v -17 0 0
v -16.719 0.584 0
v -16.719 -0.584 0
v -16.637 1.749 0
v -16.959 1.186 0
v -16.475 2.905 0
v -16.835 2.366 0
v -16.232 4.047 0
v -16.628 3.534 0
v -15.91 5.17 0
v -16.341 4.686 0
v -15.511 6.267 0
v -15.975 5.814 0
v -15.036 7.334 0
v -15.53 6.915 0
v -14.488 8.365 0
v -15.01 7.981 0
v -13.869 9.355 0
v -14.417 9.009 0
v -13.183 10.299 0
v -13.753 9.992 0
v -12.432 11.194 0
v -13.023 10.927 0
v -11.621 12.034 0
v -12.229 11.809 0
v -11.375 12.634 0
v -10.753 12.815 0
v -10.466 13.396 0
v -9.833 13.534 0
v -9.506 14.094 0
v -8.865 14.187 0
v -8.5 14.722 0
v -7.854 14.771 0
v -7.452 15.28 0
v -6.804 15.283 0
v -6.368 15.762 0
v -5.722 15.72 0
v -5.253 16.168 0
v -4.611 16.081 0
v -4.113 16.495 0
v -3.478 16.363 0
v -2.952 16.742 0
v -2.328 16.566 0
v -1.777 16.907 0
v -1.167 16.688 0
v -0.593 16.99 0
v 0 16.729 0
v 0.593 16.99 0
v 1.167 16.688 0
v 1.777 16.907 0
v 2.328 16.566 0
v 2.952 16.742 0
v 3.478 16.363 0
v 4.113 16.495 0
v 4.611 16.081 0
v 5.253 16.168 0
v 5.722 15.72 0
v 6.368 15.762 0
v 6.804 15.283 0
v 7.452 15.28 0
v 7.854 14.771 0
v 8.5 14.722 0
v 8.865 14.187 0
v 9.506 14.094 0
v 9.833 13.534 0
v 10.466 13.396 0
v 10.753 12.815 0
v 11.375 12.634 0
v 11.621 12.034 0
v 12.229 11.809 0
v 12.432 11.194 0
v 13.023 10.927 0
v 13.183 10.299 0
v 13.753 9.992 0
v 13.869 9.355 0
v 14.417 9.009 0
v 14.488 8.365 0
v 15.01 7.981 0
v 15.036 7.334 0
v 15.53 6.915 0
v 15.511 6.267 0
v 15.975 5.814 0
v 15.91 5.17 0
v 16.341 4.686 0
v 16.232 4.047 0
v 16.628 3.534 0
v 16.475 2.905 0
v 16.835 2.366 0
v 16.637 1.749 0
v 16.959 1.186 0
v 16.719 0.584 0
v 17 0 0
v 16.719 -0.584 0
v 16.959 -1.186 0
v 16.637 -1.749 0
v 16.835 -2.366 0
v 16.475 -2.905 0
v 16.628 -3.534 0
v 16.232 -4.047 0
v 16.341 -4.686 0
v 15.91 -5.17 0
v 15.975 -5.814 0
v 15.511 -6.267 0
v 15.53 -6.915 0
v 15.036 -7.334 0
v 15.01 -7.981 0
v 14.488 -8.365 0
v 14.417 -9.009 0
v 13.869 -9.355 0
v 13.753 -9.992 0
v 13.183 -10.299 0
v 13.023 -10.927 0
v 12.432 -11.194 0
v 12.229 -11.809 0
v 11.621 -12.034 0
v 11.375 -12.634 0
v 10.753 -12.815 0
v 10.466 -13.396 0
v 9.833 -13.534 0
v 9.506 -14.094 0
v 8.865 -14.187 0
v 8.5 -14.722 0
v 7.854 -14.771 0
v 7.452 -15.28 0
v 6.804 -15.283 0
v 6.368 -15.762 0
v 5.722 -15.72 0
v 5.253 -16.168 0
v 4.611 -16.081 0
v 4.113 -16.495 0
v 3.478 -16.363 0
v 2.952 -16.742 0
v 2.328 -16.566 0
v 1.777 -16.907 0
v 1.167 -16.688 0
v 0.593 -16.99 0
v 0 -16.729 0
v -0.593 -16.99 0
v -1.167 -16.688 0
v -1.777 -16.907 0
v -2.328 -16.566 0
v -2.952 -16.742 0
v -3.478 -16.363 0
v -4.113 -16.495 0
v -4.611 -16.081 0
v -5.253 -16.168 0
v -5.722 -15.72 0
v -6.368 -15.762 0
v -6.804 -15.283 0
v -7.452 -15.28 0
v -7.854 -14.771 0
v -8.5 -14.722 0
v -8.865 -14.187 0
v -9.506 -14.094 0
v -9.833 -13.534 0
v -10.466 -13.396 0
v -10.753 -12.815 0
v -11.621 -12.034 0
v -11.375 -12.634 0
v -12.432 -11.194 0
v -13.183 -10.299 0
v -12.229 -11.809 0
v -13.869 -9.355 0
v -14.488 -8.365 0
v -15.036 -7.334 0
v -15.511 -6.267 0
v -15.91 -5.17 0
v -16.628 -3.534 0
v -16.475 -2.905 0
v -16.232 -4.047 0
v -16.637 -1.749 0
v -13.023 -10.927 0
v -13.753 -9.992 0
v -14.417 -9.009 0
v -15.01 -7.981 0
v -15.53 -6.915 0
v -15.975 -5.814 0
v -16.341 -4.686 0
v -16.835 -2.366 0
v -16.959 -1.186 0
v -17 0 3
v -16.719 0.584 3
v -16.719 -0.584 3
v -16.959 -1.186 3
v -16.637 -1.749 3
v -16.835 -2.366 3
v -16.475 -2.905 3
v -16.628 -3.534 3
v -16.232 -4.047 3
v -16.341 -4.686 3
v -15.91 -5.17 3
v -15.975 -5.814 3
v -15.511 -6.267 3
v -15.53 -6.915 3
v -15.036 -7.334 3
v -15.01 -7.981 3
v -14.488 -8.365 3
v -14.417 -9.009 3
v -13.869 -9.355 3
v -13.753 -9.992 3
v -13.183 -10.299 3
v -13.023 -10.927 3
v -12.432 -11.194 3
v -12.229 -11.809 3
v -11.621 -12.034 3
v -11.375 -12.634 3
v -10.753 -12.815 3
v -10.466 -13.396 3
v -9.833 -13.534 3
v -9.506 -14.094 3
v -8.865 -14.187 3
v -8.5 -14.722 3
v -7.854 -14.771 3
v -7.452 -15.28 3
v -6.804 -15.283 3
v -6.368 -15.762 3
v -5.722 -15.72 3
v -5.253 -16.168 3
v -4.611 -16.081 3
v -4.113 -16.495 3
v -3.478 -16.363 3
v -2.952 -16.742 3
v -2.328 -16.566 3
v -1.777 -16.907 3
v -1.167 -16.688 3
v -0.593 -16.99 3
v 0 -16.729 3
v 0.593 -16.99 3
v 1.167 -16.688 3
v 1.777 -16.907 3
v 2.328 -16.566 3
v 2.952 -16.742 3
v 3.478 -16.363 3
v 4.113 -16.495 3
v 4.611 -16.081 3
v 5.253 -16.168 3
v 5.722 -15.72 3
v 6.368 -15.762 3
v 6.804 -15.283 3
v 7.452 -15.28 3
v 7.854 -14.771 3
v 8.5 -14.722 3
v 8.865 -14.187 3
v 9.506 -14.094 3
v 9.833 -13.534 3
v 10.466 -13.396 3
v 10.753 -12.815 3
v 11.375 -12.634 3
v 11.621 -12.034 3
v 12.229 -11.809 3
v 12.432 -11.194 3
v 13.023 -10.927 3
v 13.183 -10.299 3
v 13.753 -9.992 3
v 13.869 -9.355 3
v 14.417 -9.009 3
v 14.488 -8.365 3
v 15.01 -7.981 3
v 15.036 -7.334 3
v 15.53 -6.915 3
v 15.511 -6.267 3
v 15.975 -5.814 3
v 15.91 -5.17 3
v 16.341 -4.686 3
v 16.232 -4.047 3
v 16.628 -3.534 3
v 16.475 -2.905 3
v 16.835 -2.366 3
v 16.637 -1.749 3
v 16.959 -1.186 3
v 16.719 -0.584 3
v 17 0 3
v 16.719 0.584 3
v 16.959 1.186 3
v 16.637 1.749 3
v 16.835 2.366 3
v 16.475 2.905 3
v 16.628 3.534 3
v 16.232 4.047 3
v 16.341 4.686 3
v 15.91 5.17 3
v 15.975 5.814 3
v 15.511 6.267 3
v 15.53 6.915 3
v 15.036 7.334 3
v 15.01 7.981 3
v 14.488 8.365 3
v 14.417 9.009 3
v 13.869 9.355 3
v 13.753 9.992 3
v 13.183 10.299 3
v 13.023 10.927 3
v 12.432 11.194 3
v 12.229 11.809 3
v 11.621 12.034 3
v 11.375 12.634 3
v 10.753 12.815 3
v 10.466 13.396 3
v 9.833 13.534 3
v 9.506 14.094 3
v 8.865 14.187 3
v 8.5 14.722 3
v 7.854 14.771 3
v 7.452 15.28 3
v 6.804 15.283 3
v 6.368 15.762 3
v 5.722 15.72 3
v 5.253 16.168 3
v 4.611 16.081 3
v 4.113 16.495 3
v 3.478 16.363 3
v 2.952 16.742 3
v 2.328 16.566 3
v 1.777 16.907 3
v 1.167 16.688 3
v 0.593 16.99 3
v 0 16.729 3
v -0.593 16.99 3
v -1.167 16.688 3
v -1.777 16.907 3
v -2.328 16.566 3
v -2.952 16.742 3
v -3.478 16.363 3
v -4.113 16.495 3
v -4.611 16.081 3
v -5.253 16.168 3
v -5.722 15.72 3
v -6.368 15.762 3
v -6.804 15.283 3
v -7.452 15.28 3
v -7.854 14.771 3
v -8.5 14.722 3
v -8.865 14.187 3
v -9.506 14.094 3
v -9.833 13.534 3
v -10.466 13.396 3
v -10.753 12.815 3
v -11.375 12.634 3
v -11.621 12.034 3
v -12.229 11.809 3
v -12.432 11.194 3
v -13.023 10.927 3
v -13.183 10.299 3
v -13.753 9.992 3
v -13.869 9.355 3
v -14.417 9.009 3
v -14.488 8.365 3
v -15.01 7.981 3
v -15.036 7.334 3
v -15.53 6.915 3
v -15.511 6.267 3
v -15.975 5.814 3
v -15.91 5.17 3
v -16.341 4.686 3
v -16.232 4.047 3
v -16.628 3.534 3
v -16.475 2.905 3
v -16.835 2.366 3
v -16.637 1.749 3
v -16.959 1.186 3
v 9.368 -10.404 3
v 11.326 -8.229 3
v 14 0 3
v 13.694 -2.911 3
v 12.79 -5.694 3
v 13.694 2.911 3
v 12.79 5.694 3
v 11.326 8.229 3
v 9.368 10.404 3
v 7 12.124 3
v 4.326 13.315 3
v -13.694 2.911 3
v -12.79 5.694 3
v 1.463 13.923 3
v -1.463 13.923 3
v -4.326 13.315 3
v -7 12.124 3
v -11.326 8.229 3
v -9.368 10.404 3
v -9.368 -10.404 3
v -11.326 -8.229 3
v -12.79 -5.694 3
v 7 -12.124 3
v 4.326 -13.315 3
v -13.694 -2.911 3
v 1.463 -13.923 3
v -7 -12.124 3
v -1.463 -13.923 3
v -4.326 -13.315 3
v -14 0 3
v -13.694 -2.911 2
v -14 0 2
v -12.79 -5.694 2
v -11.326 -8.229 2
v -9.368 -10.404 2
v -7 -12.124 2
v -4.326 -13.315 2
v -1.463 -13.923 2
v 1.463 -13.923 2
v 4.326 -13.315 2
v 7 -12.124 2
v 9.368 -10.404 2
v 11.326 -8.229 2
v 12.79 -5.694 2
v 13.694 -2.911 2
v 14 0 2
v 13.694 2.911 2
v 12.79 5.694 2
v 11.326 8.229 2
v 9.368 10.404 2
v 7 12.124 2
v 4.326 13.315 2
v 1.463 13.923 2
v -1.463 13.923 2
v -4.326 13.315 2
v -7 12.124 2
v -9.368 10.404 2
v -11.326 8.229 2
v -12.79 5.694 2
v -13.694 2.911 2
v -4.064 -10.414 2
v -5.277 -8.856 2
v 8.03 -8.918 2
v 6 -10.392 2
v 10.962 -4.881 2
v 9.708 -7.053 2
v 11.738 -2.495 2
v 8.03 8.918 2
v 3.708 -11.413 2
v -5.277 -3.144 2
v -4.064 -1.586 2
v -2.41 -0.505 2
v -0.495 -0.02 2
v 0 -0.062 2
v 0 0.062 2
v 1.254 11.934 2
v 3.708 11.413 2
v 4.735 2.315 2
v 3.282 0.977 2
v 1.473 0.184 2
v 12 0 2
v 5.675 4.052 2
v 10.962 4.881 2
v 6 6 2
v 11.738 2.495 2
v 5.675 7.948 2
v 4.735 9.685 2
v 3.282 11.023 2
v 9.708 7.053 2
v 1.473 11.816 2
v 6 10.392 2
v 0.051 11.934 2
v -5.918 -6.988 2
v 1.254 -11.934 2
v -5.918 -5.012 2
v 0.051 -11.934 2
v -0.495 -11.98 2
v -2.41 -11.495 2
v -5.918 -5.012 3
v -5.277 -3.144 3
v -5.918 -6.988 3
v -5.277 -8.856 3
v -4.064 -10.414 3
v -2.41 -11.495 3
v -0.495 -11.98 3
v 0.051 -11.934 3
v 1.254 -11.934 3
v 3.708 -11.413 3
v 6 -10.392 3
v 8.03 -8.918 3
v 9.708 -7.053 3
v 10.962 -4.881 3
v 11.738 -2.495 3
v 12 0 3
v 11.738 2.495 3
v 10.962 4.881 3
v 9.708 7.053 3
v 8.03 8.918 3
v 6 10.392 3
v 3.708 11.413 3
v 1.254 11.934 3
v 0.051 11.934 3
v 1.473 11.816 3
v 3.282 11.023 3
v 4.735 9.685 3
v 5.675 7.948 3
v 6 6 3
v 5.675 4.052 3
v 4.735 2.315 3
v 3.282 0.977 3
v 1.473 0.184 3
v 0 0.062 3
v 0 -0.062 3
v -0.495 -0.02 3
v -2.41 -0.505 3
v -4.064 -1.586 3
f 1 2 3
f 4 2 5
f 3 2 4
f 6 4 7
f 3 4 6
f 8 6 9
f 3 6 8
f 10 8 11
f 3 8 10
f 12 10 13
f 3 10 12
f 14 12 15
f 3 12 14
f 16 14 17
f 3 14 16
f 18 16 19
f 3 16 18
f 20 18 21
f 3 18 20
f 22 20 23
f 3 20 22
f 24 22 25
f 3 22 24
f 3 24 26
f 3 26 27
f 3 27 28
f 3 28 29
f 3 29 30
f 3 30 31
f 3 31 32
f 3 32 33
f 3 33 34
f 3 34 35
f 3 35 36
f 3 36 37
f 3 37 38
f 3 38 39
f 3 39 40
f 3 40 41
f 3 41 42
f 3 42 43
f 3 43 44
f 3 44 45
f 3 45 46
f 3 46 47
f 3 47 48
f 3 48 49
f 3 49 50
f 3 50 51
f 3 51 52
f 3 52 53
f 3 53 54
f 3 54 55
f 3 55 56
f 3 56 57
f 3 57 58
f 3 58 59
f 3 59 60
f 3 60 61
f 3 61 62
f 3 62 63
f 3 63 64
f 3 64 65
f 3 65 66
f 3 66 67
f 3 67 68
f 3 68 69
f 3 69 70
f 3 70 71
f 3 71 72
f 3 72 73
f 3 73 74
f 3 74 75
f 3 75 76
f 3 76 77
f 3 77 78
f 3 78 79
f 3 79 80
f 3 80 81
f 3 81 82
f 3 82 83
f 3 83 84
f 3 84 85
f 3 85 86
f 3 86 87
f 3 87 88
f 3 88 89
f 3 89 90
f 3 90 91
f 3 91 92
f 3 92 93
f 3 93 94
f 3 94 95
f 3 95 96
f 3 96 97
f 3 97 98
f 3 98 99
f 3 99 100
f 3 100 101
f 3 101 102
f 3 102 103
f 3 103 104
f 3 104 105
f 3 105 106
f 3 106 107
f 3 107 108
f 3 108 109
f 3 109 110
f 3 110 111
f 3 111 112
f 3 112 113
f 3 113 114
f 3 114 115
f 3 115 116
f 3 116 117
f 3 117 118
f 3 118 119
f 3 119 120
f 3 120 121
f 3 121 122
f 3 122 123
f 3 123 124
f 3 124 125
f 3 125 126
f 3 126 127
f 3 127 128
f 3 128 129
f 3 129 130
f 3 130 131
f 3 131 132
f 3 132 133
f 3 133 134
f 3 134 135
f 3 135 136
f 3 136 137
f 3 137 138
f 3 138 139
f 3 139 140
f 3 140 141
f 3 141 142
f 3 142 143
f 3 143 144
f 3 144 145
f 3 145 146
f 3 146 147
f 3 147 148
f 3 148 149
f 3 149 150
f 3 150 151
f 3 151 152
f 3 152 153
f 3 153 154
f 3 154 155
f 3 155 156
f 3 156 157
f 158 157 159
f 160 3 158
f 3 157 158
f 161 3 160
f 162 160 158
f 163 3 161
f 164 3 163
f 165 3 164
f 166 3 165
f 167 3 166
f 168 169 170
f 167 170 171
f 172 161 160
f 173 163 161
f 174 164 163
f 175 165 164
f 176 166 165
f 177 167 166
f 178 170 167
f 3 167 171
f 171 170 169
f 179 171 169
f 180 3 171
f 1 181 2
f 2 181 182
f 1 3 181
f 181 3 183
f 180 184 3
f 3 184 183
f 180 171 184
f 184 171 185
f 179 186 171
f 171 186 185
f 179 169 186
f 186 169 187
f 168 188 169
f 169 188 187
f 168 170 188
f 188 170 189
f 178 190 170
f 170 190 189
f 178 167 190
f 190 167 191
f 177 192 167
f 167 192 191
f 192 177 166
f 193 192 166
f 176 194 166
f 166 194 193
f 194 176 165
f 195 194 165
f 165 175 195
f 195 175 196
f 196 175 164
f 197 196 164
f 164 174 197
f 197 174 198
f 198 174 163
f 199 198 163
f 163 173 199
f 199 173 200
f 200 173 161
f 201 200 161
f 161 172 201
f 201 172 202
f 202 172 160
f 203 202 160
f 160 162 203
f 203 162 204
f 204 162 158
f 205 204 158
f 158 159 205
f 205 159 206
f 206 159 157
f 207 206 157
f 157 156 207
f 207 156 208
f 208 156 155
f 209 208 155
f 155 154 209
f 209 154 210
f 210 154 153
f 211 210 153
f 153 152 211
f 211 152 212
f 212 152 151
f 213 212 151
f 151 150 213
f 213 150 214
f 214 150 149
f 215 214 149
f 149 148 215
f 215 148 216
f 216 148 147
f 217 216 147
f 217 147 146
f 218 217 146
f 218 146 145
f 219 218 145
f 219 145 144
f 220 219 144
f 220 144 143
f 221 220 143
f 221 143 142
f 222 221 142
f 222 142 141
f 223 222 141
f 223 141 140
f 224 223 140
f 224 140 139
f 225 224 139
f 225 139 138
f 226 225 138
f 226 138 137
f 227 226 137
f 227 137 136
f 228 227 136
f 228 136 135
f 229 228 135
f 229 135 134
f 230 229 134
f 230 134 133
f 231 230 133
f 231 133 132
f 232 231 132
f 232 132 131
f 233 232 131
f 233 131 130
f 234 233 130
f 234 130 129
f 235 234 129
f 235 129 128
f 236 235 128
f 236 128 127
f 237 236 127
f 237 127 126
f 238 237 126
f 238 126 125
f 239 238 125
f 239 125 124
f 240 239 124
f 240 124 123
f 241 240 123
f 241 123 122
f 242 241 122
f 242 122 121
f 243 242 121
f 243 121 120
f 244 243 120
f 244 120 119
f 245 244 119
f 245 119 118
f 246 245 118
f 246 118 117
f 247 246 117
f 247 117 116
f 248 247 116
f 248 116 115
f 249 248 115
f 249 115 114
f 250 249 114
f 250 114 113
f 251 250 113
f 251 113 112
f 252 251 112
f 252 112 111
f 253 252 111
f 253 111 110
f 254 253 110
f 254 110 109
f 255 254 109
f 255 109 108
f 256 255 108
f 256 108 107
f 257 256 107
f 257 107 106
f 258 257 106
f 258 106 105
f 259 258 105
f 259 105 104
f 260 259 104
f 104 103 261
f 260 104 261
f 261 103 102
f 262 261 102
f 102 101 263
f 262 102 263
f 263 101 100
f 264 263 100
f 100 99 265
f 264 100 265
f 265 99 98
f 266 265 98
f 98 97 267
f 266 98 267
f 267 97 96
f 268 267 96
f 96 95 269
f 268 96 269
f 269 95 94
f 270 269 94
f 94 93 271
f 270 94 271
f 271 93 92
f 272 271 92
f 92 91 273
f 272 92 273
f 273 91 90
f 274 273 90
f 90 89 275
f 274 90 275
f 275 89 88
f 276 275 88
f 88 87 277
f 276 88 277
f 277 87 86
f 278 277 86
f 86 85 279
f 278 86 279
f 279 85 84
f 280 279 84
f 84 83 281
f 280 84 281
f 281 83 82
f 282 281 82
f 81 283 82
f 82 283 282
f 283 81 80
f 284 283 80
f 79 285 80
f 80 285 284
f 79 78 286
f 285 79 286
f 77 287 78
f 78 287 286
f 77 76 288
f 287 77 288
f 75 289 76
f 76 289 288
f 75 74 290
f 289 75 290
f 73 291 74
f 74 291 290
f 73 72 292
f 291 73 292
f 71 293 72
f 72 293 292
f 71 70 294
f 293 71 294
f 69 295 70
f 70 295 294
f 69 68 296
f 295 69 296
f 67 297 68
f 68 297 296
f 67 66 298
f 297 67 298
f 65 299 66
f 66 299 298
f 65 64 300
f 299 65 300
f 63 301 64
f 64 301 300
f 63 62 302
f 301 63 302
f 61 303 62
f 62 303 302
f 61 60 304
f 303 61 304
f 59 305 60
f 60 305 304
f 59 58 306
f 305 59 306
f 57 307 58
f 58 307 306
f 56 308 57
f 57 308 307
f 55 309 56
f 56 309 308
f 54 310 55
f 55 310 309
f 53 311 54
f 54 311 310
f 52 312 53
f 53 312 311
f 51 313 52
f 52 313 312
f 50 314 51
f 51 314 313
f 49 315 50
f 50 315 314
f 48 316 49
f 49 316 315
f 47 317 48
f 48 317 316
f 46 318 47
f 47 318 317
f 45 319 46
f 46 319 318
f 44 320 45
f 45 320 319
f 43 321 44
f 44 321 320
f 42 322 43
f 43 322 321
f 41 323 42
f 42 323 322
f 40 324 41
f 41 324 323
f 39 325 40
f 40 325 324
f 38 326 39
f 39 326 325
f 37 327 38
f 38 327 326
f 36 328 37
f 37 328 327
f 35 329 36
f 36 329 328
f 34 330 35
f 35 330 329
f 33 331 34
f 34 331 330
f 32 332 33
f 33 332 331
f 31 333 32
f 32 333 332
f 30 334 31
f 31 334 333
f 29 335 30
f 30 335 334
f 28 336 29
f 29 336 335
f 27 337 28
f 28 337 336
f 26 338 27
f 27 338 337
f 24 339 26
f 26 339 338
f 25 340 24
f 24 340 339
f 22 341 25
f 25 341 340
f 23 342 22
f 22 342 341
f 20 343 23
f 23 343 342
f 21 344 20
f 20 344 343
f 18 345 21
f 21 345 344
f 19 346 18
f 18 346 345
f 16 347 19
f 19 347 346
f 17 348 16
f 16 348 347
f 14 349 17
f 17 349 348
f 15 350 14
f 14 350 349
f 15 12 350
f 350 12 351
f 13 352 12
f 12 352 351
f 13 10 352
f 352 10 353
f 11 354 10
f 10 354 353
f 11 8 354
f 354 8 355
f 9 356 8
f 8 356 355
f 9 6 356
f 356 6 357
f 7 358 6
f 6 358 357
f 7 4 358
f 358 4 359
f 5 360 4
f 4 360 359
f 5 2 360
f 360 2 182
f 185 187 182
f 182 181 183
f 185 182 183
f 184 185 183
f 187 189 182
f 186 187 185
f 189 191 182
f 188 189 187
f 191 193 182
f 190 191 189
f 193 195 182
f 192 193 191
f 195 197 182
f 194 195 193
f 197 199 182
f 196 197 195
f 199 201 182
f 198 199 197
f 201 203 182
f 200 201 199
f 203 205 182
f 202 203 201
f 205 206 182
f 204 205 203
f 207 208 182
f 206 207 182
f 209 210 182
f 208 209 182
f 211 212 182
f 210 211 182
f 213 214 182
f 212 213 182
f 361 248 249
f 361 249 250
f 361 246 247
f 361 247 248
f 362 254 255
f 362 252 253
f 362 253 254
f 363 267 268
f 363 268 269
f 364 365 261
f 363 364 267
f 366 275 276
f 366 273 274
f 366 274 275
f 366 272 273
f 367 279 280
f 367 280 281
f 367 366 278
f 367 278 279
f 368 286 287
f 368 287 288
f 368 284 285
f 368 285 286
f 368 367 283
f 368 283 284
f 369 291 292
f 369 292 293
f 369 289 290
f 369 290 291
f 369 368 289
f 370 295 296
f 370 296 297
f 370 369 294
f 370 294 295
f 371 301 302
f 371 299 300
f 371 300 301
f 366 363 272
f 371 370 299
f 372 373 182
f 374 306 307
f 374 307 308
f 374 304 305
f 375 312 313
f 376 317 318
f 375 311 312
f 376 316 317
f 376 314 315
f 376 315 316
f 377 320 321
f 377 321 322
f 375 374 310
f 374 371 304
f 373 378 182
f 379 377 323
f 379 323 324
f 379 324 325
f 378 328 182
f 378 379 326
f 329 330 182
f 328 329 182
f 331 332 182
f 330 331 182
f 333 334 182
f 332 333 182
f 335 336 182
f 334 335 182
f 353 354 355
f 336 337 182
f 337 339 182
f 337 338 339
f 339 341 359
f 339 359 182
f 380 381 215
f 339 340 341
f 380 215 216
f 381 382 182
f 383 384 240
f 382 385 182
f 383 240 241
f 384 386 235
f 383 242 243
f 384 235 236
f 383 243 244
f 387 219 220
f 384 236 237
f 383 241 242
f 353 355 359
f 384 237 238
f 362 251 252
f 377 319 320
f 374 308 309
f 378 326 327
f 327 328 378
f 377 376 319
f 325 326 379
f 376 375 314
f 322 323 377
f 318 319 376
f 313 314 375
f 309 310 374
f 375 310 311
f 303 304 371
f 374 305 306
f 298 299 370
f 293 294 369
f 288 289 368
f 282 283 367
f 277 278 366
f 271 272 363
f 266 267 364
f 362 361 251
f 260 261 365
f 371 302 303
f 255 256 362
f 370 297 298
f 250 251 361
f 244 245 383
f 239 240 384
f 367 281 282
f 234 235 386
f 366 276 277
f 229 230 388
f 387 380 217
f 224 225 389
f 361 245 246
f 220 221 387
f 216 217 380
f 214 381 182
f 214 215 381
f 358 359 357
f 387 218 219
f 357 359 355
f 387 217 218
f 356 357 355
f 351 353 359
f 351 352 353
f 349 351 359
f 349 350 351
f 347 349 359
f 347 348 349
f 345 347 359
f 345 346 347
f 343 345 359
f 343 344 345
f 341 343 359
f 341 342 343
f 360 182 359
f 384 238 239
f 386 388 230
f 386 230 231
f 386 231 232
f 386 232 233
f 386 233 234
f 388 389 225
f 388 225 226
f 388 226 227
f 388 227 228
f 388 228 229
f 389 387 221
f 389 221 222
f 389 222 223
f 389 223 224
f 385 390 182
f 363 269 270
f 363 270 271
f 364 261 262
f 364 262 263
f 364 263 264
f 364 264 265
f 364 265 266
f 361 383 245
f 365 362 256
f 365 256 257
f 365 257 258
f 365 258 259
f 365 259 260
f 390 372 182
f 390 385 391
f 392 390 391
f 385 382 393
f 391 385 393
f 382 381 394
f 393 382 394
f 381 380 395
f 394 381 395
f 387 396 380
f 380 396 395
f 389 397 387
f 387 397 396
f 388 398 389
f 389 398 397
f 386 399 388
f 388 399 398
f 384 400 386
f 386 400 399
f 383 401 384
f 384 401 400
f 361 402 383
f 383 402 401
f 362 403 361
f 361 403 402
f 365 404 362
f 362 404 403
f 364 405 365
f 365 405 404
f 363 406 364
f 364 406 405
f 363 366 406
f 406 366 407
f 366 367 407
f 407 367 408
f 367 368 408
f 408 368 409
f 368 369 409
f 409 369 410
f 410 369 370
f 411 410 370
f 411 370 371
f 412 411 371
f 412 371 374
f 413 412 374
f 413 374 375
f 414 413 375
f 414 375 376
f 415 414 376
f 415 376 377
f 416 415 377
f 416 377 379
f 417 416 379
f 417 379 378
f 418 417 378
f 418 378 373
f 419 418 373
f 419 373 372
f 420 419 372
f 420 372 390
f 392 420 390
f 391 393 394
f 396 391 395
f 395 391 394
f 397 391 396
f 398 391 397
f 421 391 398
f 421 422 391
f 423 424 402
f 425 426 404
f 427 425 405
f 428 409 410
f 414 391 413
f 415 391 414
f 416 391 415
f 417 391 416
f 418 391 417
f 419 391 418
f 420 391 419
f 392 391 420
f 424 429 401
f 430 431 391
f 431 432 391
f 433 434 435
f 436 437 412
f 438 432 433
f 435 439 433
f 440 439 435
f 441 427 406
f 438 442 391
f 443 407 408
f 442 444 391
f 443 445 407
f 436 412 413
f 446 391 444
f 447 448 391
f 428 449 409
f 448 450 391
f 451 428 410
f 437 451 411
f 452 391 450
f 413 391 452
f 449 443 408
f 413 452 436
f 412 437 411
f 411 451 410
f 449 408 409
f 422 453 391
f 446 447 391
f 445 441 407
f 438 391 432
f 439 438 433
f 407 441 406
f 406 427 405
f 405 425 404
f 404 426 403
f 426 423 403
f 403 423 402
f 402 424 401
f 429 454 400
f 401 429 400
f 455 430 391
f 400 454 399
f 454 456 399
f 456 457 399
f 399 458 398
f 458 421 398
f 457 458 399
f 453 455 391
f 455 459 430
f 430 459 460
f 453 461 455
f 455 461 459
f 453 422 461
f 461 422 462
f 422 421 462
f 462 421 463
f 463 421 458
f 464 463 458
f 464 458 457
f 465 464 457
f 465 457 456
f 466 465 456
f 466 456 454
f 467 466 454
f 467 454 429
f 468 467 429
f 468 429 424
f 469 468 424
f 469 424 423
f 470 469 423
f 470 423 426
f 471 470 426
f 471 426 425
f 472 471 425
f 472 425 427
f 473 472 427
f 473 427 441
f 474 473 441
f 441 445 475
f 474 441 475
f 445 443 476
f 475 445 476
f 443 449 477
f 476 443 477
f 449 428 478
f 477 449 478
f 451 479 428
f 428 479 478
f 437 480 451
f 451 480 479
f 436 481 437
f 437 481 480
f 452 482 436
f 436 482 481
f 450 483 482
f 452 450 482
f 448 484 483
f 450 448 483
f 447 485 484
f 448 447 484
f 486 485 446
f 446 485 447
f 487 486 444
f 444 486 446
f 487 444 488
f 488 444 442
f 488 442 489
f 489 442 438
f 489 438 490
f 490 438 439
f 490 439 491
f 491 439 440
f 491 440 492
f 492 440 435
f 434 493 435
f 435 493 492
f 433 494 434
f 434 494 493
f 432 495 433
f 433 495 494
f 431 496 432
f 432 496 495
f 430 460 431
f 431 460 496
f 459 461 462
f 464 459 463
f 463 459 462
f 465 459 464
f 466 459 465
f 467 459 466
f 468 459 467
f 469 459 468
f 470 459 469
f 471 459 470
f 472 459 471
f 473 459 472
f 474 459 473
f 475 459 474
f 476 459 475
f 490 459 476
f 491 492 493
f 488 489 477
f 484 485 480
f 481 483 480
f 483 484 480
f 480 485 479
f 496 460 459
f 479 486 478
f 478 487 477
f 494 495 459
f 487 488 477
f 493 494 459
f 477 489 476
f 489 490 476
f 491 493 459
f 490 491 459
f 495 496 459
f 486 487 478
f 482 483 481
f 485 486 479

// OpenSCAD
// file: coin-lib.scad
/*
 * Simple coin shape
 *
 * Copyright (c) 2012 Mark Hindess
 *
 * Creative Commons Attribution-NonCommercial-ShareAlike 3.0 Unported License:
 *
 *   http://creativecommons.org/licenses/by-nc-sa/3.0/
 */

module coin(height = 3, radius = 17,
            cut_radius = 14, cut_height = 1,
            bumps = 90, bump_radius = 2) {
  deg = 360/bumps;
  difference() {
    union() {
      for(n=[0:bumps-1]) {
        rotate([0, 0, n*deg])
          translate([radius-bump_radius, 0, 0])
            cylinder(r = bump_radius, h = height);
      }
      cylinder(r = radius-bump_radius, h = height);
    }
    translate([0, 0, height-cut_height])
      cylinder(r = cut_radius, h = height-cut_height);
  }
}

coin();
// main file
use <coin-lib.scad>
coin();
r = 12;
translate([0,0,2]) {
  difference() {
    intersection() {
      translate([0,-r,0]) cube([r, r*2, 1]);
      cylinder(r = r, h = 1);
    }
    translate([0, r/2, 0]) cylinder(r = r/2, h = 2);
  }
  translate([0, -r/2, 0]) cylinder(r = r/2, h = 1);
}
